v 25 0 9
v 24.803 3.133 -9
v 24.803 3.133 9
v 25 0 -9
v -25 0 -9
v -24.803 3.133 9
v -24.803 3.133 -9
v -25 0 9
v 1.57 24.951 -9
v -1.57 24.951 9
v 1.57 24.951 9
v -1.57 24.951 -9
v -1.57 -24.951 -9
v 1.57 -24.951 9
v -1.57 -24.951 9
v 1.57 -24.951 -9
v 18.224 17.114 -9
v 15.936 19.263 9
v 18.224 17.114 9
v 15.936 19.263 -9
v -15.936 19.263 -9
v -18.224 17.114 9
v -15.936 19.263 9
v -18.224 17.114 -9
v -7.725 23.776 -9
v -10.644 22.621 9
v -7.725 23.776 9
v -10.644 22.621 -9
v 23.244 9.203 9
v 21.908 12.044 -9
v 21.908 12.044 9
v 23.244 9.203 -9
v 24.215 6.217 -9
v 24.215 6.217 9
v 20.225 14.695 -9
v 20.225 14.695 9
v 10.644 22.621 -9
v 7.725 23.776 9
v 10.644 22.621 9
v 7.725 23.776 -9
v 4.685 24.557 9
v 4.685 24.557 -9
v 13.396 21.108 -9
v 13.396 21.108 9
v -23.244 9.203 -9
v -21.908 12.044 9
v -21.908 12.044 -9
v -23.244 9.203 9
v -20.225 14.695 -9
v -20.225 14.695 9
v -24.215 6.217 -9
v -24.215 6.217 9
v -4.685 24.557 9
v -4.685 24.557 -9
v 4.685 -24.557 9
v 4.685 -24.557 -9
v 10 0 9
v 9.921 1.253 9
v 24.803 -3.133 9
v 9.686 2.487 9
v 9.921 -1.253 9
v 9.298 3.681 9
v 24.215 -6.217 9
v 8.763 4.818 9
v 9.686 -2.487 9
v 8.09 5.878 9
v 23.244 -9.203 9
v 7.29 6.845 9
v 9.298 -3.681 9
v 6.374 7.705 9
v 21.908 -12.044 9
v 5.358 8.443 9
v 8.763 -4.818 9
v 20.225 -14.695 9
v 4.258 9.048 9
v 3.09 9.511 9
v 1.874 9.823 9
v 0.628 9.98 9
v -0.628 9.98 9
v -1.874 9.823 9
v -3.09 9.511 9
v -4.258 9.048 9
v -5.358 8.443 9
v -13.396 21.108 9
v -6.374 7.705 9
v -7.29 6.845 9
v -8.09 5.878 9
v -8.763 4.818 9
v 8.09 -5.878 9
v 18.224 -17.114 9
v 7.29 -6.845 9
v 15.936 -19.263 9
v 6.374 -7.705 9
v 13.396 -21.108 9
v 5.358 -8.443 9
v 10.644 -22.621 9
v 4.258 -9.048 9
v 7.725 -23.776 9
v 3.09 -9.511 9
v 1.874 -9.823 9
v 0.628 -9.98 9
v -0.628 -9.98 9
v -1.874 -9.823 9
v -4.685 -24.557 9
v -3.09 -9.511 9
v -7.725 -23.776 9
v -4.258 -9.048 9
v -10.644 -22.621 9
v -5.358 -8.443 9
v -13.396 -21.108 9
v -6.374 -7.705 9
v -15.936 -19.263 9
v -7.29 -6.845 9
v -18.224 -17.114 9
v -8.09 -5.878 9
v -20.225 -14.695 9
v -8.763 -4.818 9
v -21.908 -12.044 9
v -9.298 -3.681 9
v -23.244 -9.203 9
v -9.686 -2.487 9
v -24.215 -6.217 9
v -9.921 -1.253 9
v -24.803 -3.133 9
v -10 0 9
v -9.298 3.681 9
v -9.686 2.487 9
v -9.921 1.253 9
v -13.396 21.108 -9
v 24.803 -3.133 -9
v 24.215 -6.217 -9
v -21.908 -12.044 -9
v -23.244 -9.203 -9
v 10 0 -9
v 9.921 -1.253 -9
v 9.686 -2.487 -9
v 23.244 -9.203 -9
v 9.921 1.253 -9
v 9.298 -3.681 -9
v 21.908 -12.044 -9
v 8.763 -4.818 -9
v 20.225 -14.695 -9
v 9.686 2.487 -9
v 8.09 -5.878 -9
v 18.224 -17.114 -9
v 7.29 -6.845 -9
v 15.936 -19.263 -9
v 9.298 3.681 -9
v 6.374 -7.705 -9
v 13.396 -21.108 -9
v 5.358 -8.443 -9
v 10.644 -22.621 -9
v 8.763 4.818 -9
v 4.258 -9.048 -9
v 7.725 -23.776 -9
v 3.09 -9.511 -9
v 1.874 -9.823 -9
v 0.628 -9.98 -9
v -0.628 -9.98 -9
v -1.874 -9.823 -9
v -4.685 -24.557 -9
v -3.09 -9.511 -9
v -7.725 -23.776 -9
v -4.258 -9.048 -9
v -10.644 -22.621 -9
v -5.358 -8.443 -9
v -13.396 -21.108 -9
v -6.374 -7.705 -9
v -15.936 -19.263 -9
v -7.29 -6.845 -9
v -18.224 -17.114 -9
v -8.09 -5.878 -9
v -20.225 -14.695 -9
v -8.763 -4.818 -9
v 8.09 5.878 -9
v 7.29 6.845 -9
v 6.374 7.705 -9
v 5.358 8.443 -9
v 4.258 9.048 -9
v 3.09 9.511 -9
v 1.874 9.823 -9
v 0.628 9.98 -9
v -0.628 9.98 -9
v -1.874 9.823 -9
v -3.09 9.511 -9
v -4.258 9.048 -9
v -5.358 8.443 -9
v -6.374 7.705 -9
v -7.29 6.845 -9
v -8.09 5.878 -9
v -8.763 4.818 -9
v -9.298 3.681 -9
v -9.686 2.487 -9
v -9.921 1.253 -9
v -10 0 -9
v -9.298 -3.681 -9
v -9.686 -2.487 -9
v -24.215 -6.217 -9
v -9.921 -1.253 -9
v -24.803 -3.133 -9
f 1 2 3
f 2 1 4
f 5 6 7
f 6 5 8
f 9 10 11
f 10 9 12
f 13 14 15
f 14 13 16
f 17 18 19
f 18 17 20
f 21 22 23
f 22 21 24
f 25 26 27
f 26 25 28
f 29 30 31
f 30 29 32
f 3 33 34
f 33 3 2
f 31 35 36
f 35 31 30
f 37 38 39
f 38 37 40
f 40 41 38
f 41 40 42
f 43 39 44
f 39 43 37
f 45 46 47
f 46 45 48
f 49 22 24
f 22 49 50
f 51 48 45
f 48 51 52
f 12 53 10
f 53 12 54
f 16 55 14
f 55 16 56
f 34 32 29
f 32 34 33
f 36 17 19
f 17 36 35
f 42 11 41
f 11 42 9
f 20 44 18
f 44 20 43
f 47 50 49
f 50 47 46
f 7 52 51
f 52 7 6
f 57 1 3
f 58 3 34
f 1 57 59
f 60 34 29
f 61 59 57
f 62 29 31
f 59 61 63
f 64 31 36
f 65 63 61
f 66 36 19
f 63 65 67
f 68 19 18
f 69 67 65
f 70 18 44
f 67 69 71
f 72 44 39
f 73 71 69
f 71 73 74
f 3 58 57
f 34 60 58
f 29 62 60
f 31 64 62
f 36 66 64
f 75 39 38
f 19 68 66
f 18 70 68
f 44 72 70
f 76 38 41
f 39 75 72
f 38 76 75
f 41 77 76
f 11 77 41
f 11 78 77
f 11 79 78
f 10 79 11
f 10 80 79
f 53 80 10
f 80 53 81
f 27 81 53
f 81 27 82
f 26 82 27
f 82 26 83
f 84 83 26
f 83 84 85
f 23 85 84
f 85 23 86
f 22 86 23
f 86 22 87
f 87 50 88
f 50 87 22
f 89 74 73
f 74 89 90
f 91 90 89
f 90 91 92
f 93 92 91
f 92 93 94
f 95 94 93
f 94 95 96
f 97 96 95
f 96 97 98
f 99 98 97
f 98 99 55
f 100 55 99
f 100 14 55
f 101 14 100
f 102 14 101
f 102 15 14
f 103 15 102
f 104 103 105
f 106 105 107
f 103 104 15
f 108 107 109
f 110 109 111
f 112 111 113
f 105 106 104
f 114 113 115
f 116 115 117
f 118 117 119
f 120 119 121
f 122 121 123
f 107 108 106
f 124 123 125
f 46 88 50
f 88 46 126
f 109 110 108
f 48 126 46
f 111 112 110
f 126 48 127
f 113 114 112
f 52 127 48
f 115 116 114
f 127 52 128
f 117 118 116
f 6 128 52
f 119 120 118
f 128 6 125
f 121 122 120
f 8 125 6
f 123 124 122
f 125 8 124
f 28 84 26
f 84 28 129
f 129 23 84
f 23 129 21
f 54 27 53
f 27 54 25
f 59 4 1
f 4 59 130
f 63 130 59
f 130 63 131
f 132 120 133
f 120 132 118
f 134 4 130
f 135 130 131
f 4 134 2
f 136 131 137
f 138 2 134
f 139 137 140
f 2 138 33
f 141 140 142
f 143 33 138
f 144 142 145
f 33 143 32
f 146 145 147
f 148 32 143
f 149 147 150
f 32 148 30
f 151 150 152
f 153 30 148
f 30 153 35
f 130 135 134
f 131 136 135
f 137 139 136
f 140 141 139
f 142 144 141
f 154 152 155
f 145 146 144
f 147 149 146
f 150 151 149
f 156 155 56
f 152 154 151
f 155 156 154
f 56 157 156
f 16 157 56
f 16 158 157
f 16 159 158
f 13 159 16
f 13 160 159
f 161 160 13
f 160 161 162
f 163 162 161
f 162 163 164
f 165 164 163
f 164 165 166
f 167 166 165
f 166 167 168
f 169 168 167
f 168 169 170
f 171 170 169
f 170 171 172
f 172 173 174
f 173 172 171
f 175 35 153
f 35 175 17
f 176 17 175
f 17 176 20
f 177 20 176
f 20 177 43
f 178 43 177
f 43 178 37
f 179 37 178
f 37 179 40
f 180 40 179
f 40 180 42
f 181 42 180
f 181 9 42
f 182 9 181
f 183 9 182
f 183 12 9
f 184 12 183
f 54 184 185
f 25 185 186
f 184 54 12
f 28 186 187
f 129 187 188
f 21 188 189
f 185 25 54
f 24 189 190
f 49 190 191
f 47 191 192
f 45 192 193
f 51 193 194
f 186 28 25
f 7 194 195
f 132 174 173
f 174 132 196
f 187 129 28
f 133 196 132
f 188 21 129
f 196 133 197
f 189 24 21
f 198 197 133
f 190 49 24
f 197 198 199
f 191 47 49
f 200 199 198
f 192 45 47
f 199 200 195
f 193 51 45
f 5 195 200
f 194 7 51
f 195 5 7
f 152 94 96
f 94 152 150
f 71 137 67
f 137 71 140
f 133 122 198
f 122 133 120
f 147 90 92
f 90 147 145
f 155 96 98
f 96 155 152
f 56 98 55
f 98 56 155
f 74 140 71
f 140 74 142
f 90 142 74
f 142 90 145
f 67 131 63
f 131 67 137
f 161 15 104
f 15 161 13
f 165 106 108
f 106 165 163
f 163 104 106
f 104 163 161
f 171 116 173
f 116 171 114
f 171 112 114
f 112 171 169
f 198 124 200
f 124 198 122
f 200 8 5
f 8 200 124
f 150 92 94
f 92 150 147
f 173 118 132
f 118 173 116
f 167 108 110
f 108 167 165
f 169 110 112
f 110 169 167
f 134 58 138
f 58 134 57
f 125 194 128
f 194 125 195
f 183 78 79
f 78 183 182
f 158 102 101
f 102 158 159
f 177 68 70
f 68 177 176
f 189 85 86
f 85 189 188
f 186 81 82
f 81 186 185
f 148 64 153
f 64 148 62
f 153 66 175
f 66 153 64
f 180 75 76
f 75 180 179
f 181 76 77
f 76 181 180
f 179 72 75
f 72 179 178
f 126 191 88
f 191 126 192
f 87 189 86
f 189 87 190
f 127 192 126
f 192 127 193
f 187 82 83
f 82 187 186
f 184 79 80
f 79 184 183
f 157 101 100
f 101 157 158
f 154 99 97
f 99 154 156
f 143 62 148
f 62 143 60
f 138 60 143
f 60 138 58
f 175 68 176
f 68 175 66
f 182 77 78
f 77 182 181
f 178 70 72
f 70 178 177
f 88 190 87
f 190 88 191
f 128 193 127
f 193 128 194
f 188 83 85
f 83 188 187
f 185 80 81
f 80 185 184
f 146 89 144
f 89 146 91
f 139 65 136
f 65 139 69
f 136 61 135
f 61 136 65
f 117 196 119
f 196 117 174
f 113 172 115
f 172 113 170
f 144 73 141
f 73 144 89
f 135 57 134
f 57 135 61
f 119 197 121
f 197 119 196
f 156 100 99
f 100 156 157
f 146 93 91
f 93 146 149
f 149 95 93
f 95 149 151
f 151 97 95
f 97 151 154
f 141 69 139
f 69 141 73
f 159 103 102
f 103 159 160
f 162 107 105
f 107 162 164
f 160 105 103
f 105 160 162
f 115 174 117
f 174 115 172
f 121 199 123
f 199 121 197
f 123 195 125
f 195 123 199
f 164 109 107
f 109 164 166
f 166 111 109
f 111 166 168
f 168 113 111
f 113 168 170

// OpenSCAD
$fn = 50;


difference() {
	union() {
		translate(v = [0, 0, -9.0000000000]) {
			cylinder(h = 18, r = 25.0000000000);
		}
	}
	union() {
		translate(v = [0, 0, -100.0000000000]) {
			cylinder(h = 200, r = 10);
		}
	}
}
